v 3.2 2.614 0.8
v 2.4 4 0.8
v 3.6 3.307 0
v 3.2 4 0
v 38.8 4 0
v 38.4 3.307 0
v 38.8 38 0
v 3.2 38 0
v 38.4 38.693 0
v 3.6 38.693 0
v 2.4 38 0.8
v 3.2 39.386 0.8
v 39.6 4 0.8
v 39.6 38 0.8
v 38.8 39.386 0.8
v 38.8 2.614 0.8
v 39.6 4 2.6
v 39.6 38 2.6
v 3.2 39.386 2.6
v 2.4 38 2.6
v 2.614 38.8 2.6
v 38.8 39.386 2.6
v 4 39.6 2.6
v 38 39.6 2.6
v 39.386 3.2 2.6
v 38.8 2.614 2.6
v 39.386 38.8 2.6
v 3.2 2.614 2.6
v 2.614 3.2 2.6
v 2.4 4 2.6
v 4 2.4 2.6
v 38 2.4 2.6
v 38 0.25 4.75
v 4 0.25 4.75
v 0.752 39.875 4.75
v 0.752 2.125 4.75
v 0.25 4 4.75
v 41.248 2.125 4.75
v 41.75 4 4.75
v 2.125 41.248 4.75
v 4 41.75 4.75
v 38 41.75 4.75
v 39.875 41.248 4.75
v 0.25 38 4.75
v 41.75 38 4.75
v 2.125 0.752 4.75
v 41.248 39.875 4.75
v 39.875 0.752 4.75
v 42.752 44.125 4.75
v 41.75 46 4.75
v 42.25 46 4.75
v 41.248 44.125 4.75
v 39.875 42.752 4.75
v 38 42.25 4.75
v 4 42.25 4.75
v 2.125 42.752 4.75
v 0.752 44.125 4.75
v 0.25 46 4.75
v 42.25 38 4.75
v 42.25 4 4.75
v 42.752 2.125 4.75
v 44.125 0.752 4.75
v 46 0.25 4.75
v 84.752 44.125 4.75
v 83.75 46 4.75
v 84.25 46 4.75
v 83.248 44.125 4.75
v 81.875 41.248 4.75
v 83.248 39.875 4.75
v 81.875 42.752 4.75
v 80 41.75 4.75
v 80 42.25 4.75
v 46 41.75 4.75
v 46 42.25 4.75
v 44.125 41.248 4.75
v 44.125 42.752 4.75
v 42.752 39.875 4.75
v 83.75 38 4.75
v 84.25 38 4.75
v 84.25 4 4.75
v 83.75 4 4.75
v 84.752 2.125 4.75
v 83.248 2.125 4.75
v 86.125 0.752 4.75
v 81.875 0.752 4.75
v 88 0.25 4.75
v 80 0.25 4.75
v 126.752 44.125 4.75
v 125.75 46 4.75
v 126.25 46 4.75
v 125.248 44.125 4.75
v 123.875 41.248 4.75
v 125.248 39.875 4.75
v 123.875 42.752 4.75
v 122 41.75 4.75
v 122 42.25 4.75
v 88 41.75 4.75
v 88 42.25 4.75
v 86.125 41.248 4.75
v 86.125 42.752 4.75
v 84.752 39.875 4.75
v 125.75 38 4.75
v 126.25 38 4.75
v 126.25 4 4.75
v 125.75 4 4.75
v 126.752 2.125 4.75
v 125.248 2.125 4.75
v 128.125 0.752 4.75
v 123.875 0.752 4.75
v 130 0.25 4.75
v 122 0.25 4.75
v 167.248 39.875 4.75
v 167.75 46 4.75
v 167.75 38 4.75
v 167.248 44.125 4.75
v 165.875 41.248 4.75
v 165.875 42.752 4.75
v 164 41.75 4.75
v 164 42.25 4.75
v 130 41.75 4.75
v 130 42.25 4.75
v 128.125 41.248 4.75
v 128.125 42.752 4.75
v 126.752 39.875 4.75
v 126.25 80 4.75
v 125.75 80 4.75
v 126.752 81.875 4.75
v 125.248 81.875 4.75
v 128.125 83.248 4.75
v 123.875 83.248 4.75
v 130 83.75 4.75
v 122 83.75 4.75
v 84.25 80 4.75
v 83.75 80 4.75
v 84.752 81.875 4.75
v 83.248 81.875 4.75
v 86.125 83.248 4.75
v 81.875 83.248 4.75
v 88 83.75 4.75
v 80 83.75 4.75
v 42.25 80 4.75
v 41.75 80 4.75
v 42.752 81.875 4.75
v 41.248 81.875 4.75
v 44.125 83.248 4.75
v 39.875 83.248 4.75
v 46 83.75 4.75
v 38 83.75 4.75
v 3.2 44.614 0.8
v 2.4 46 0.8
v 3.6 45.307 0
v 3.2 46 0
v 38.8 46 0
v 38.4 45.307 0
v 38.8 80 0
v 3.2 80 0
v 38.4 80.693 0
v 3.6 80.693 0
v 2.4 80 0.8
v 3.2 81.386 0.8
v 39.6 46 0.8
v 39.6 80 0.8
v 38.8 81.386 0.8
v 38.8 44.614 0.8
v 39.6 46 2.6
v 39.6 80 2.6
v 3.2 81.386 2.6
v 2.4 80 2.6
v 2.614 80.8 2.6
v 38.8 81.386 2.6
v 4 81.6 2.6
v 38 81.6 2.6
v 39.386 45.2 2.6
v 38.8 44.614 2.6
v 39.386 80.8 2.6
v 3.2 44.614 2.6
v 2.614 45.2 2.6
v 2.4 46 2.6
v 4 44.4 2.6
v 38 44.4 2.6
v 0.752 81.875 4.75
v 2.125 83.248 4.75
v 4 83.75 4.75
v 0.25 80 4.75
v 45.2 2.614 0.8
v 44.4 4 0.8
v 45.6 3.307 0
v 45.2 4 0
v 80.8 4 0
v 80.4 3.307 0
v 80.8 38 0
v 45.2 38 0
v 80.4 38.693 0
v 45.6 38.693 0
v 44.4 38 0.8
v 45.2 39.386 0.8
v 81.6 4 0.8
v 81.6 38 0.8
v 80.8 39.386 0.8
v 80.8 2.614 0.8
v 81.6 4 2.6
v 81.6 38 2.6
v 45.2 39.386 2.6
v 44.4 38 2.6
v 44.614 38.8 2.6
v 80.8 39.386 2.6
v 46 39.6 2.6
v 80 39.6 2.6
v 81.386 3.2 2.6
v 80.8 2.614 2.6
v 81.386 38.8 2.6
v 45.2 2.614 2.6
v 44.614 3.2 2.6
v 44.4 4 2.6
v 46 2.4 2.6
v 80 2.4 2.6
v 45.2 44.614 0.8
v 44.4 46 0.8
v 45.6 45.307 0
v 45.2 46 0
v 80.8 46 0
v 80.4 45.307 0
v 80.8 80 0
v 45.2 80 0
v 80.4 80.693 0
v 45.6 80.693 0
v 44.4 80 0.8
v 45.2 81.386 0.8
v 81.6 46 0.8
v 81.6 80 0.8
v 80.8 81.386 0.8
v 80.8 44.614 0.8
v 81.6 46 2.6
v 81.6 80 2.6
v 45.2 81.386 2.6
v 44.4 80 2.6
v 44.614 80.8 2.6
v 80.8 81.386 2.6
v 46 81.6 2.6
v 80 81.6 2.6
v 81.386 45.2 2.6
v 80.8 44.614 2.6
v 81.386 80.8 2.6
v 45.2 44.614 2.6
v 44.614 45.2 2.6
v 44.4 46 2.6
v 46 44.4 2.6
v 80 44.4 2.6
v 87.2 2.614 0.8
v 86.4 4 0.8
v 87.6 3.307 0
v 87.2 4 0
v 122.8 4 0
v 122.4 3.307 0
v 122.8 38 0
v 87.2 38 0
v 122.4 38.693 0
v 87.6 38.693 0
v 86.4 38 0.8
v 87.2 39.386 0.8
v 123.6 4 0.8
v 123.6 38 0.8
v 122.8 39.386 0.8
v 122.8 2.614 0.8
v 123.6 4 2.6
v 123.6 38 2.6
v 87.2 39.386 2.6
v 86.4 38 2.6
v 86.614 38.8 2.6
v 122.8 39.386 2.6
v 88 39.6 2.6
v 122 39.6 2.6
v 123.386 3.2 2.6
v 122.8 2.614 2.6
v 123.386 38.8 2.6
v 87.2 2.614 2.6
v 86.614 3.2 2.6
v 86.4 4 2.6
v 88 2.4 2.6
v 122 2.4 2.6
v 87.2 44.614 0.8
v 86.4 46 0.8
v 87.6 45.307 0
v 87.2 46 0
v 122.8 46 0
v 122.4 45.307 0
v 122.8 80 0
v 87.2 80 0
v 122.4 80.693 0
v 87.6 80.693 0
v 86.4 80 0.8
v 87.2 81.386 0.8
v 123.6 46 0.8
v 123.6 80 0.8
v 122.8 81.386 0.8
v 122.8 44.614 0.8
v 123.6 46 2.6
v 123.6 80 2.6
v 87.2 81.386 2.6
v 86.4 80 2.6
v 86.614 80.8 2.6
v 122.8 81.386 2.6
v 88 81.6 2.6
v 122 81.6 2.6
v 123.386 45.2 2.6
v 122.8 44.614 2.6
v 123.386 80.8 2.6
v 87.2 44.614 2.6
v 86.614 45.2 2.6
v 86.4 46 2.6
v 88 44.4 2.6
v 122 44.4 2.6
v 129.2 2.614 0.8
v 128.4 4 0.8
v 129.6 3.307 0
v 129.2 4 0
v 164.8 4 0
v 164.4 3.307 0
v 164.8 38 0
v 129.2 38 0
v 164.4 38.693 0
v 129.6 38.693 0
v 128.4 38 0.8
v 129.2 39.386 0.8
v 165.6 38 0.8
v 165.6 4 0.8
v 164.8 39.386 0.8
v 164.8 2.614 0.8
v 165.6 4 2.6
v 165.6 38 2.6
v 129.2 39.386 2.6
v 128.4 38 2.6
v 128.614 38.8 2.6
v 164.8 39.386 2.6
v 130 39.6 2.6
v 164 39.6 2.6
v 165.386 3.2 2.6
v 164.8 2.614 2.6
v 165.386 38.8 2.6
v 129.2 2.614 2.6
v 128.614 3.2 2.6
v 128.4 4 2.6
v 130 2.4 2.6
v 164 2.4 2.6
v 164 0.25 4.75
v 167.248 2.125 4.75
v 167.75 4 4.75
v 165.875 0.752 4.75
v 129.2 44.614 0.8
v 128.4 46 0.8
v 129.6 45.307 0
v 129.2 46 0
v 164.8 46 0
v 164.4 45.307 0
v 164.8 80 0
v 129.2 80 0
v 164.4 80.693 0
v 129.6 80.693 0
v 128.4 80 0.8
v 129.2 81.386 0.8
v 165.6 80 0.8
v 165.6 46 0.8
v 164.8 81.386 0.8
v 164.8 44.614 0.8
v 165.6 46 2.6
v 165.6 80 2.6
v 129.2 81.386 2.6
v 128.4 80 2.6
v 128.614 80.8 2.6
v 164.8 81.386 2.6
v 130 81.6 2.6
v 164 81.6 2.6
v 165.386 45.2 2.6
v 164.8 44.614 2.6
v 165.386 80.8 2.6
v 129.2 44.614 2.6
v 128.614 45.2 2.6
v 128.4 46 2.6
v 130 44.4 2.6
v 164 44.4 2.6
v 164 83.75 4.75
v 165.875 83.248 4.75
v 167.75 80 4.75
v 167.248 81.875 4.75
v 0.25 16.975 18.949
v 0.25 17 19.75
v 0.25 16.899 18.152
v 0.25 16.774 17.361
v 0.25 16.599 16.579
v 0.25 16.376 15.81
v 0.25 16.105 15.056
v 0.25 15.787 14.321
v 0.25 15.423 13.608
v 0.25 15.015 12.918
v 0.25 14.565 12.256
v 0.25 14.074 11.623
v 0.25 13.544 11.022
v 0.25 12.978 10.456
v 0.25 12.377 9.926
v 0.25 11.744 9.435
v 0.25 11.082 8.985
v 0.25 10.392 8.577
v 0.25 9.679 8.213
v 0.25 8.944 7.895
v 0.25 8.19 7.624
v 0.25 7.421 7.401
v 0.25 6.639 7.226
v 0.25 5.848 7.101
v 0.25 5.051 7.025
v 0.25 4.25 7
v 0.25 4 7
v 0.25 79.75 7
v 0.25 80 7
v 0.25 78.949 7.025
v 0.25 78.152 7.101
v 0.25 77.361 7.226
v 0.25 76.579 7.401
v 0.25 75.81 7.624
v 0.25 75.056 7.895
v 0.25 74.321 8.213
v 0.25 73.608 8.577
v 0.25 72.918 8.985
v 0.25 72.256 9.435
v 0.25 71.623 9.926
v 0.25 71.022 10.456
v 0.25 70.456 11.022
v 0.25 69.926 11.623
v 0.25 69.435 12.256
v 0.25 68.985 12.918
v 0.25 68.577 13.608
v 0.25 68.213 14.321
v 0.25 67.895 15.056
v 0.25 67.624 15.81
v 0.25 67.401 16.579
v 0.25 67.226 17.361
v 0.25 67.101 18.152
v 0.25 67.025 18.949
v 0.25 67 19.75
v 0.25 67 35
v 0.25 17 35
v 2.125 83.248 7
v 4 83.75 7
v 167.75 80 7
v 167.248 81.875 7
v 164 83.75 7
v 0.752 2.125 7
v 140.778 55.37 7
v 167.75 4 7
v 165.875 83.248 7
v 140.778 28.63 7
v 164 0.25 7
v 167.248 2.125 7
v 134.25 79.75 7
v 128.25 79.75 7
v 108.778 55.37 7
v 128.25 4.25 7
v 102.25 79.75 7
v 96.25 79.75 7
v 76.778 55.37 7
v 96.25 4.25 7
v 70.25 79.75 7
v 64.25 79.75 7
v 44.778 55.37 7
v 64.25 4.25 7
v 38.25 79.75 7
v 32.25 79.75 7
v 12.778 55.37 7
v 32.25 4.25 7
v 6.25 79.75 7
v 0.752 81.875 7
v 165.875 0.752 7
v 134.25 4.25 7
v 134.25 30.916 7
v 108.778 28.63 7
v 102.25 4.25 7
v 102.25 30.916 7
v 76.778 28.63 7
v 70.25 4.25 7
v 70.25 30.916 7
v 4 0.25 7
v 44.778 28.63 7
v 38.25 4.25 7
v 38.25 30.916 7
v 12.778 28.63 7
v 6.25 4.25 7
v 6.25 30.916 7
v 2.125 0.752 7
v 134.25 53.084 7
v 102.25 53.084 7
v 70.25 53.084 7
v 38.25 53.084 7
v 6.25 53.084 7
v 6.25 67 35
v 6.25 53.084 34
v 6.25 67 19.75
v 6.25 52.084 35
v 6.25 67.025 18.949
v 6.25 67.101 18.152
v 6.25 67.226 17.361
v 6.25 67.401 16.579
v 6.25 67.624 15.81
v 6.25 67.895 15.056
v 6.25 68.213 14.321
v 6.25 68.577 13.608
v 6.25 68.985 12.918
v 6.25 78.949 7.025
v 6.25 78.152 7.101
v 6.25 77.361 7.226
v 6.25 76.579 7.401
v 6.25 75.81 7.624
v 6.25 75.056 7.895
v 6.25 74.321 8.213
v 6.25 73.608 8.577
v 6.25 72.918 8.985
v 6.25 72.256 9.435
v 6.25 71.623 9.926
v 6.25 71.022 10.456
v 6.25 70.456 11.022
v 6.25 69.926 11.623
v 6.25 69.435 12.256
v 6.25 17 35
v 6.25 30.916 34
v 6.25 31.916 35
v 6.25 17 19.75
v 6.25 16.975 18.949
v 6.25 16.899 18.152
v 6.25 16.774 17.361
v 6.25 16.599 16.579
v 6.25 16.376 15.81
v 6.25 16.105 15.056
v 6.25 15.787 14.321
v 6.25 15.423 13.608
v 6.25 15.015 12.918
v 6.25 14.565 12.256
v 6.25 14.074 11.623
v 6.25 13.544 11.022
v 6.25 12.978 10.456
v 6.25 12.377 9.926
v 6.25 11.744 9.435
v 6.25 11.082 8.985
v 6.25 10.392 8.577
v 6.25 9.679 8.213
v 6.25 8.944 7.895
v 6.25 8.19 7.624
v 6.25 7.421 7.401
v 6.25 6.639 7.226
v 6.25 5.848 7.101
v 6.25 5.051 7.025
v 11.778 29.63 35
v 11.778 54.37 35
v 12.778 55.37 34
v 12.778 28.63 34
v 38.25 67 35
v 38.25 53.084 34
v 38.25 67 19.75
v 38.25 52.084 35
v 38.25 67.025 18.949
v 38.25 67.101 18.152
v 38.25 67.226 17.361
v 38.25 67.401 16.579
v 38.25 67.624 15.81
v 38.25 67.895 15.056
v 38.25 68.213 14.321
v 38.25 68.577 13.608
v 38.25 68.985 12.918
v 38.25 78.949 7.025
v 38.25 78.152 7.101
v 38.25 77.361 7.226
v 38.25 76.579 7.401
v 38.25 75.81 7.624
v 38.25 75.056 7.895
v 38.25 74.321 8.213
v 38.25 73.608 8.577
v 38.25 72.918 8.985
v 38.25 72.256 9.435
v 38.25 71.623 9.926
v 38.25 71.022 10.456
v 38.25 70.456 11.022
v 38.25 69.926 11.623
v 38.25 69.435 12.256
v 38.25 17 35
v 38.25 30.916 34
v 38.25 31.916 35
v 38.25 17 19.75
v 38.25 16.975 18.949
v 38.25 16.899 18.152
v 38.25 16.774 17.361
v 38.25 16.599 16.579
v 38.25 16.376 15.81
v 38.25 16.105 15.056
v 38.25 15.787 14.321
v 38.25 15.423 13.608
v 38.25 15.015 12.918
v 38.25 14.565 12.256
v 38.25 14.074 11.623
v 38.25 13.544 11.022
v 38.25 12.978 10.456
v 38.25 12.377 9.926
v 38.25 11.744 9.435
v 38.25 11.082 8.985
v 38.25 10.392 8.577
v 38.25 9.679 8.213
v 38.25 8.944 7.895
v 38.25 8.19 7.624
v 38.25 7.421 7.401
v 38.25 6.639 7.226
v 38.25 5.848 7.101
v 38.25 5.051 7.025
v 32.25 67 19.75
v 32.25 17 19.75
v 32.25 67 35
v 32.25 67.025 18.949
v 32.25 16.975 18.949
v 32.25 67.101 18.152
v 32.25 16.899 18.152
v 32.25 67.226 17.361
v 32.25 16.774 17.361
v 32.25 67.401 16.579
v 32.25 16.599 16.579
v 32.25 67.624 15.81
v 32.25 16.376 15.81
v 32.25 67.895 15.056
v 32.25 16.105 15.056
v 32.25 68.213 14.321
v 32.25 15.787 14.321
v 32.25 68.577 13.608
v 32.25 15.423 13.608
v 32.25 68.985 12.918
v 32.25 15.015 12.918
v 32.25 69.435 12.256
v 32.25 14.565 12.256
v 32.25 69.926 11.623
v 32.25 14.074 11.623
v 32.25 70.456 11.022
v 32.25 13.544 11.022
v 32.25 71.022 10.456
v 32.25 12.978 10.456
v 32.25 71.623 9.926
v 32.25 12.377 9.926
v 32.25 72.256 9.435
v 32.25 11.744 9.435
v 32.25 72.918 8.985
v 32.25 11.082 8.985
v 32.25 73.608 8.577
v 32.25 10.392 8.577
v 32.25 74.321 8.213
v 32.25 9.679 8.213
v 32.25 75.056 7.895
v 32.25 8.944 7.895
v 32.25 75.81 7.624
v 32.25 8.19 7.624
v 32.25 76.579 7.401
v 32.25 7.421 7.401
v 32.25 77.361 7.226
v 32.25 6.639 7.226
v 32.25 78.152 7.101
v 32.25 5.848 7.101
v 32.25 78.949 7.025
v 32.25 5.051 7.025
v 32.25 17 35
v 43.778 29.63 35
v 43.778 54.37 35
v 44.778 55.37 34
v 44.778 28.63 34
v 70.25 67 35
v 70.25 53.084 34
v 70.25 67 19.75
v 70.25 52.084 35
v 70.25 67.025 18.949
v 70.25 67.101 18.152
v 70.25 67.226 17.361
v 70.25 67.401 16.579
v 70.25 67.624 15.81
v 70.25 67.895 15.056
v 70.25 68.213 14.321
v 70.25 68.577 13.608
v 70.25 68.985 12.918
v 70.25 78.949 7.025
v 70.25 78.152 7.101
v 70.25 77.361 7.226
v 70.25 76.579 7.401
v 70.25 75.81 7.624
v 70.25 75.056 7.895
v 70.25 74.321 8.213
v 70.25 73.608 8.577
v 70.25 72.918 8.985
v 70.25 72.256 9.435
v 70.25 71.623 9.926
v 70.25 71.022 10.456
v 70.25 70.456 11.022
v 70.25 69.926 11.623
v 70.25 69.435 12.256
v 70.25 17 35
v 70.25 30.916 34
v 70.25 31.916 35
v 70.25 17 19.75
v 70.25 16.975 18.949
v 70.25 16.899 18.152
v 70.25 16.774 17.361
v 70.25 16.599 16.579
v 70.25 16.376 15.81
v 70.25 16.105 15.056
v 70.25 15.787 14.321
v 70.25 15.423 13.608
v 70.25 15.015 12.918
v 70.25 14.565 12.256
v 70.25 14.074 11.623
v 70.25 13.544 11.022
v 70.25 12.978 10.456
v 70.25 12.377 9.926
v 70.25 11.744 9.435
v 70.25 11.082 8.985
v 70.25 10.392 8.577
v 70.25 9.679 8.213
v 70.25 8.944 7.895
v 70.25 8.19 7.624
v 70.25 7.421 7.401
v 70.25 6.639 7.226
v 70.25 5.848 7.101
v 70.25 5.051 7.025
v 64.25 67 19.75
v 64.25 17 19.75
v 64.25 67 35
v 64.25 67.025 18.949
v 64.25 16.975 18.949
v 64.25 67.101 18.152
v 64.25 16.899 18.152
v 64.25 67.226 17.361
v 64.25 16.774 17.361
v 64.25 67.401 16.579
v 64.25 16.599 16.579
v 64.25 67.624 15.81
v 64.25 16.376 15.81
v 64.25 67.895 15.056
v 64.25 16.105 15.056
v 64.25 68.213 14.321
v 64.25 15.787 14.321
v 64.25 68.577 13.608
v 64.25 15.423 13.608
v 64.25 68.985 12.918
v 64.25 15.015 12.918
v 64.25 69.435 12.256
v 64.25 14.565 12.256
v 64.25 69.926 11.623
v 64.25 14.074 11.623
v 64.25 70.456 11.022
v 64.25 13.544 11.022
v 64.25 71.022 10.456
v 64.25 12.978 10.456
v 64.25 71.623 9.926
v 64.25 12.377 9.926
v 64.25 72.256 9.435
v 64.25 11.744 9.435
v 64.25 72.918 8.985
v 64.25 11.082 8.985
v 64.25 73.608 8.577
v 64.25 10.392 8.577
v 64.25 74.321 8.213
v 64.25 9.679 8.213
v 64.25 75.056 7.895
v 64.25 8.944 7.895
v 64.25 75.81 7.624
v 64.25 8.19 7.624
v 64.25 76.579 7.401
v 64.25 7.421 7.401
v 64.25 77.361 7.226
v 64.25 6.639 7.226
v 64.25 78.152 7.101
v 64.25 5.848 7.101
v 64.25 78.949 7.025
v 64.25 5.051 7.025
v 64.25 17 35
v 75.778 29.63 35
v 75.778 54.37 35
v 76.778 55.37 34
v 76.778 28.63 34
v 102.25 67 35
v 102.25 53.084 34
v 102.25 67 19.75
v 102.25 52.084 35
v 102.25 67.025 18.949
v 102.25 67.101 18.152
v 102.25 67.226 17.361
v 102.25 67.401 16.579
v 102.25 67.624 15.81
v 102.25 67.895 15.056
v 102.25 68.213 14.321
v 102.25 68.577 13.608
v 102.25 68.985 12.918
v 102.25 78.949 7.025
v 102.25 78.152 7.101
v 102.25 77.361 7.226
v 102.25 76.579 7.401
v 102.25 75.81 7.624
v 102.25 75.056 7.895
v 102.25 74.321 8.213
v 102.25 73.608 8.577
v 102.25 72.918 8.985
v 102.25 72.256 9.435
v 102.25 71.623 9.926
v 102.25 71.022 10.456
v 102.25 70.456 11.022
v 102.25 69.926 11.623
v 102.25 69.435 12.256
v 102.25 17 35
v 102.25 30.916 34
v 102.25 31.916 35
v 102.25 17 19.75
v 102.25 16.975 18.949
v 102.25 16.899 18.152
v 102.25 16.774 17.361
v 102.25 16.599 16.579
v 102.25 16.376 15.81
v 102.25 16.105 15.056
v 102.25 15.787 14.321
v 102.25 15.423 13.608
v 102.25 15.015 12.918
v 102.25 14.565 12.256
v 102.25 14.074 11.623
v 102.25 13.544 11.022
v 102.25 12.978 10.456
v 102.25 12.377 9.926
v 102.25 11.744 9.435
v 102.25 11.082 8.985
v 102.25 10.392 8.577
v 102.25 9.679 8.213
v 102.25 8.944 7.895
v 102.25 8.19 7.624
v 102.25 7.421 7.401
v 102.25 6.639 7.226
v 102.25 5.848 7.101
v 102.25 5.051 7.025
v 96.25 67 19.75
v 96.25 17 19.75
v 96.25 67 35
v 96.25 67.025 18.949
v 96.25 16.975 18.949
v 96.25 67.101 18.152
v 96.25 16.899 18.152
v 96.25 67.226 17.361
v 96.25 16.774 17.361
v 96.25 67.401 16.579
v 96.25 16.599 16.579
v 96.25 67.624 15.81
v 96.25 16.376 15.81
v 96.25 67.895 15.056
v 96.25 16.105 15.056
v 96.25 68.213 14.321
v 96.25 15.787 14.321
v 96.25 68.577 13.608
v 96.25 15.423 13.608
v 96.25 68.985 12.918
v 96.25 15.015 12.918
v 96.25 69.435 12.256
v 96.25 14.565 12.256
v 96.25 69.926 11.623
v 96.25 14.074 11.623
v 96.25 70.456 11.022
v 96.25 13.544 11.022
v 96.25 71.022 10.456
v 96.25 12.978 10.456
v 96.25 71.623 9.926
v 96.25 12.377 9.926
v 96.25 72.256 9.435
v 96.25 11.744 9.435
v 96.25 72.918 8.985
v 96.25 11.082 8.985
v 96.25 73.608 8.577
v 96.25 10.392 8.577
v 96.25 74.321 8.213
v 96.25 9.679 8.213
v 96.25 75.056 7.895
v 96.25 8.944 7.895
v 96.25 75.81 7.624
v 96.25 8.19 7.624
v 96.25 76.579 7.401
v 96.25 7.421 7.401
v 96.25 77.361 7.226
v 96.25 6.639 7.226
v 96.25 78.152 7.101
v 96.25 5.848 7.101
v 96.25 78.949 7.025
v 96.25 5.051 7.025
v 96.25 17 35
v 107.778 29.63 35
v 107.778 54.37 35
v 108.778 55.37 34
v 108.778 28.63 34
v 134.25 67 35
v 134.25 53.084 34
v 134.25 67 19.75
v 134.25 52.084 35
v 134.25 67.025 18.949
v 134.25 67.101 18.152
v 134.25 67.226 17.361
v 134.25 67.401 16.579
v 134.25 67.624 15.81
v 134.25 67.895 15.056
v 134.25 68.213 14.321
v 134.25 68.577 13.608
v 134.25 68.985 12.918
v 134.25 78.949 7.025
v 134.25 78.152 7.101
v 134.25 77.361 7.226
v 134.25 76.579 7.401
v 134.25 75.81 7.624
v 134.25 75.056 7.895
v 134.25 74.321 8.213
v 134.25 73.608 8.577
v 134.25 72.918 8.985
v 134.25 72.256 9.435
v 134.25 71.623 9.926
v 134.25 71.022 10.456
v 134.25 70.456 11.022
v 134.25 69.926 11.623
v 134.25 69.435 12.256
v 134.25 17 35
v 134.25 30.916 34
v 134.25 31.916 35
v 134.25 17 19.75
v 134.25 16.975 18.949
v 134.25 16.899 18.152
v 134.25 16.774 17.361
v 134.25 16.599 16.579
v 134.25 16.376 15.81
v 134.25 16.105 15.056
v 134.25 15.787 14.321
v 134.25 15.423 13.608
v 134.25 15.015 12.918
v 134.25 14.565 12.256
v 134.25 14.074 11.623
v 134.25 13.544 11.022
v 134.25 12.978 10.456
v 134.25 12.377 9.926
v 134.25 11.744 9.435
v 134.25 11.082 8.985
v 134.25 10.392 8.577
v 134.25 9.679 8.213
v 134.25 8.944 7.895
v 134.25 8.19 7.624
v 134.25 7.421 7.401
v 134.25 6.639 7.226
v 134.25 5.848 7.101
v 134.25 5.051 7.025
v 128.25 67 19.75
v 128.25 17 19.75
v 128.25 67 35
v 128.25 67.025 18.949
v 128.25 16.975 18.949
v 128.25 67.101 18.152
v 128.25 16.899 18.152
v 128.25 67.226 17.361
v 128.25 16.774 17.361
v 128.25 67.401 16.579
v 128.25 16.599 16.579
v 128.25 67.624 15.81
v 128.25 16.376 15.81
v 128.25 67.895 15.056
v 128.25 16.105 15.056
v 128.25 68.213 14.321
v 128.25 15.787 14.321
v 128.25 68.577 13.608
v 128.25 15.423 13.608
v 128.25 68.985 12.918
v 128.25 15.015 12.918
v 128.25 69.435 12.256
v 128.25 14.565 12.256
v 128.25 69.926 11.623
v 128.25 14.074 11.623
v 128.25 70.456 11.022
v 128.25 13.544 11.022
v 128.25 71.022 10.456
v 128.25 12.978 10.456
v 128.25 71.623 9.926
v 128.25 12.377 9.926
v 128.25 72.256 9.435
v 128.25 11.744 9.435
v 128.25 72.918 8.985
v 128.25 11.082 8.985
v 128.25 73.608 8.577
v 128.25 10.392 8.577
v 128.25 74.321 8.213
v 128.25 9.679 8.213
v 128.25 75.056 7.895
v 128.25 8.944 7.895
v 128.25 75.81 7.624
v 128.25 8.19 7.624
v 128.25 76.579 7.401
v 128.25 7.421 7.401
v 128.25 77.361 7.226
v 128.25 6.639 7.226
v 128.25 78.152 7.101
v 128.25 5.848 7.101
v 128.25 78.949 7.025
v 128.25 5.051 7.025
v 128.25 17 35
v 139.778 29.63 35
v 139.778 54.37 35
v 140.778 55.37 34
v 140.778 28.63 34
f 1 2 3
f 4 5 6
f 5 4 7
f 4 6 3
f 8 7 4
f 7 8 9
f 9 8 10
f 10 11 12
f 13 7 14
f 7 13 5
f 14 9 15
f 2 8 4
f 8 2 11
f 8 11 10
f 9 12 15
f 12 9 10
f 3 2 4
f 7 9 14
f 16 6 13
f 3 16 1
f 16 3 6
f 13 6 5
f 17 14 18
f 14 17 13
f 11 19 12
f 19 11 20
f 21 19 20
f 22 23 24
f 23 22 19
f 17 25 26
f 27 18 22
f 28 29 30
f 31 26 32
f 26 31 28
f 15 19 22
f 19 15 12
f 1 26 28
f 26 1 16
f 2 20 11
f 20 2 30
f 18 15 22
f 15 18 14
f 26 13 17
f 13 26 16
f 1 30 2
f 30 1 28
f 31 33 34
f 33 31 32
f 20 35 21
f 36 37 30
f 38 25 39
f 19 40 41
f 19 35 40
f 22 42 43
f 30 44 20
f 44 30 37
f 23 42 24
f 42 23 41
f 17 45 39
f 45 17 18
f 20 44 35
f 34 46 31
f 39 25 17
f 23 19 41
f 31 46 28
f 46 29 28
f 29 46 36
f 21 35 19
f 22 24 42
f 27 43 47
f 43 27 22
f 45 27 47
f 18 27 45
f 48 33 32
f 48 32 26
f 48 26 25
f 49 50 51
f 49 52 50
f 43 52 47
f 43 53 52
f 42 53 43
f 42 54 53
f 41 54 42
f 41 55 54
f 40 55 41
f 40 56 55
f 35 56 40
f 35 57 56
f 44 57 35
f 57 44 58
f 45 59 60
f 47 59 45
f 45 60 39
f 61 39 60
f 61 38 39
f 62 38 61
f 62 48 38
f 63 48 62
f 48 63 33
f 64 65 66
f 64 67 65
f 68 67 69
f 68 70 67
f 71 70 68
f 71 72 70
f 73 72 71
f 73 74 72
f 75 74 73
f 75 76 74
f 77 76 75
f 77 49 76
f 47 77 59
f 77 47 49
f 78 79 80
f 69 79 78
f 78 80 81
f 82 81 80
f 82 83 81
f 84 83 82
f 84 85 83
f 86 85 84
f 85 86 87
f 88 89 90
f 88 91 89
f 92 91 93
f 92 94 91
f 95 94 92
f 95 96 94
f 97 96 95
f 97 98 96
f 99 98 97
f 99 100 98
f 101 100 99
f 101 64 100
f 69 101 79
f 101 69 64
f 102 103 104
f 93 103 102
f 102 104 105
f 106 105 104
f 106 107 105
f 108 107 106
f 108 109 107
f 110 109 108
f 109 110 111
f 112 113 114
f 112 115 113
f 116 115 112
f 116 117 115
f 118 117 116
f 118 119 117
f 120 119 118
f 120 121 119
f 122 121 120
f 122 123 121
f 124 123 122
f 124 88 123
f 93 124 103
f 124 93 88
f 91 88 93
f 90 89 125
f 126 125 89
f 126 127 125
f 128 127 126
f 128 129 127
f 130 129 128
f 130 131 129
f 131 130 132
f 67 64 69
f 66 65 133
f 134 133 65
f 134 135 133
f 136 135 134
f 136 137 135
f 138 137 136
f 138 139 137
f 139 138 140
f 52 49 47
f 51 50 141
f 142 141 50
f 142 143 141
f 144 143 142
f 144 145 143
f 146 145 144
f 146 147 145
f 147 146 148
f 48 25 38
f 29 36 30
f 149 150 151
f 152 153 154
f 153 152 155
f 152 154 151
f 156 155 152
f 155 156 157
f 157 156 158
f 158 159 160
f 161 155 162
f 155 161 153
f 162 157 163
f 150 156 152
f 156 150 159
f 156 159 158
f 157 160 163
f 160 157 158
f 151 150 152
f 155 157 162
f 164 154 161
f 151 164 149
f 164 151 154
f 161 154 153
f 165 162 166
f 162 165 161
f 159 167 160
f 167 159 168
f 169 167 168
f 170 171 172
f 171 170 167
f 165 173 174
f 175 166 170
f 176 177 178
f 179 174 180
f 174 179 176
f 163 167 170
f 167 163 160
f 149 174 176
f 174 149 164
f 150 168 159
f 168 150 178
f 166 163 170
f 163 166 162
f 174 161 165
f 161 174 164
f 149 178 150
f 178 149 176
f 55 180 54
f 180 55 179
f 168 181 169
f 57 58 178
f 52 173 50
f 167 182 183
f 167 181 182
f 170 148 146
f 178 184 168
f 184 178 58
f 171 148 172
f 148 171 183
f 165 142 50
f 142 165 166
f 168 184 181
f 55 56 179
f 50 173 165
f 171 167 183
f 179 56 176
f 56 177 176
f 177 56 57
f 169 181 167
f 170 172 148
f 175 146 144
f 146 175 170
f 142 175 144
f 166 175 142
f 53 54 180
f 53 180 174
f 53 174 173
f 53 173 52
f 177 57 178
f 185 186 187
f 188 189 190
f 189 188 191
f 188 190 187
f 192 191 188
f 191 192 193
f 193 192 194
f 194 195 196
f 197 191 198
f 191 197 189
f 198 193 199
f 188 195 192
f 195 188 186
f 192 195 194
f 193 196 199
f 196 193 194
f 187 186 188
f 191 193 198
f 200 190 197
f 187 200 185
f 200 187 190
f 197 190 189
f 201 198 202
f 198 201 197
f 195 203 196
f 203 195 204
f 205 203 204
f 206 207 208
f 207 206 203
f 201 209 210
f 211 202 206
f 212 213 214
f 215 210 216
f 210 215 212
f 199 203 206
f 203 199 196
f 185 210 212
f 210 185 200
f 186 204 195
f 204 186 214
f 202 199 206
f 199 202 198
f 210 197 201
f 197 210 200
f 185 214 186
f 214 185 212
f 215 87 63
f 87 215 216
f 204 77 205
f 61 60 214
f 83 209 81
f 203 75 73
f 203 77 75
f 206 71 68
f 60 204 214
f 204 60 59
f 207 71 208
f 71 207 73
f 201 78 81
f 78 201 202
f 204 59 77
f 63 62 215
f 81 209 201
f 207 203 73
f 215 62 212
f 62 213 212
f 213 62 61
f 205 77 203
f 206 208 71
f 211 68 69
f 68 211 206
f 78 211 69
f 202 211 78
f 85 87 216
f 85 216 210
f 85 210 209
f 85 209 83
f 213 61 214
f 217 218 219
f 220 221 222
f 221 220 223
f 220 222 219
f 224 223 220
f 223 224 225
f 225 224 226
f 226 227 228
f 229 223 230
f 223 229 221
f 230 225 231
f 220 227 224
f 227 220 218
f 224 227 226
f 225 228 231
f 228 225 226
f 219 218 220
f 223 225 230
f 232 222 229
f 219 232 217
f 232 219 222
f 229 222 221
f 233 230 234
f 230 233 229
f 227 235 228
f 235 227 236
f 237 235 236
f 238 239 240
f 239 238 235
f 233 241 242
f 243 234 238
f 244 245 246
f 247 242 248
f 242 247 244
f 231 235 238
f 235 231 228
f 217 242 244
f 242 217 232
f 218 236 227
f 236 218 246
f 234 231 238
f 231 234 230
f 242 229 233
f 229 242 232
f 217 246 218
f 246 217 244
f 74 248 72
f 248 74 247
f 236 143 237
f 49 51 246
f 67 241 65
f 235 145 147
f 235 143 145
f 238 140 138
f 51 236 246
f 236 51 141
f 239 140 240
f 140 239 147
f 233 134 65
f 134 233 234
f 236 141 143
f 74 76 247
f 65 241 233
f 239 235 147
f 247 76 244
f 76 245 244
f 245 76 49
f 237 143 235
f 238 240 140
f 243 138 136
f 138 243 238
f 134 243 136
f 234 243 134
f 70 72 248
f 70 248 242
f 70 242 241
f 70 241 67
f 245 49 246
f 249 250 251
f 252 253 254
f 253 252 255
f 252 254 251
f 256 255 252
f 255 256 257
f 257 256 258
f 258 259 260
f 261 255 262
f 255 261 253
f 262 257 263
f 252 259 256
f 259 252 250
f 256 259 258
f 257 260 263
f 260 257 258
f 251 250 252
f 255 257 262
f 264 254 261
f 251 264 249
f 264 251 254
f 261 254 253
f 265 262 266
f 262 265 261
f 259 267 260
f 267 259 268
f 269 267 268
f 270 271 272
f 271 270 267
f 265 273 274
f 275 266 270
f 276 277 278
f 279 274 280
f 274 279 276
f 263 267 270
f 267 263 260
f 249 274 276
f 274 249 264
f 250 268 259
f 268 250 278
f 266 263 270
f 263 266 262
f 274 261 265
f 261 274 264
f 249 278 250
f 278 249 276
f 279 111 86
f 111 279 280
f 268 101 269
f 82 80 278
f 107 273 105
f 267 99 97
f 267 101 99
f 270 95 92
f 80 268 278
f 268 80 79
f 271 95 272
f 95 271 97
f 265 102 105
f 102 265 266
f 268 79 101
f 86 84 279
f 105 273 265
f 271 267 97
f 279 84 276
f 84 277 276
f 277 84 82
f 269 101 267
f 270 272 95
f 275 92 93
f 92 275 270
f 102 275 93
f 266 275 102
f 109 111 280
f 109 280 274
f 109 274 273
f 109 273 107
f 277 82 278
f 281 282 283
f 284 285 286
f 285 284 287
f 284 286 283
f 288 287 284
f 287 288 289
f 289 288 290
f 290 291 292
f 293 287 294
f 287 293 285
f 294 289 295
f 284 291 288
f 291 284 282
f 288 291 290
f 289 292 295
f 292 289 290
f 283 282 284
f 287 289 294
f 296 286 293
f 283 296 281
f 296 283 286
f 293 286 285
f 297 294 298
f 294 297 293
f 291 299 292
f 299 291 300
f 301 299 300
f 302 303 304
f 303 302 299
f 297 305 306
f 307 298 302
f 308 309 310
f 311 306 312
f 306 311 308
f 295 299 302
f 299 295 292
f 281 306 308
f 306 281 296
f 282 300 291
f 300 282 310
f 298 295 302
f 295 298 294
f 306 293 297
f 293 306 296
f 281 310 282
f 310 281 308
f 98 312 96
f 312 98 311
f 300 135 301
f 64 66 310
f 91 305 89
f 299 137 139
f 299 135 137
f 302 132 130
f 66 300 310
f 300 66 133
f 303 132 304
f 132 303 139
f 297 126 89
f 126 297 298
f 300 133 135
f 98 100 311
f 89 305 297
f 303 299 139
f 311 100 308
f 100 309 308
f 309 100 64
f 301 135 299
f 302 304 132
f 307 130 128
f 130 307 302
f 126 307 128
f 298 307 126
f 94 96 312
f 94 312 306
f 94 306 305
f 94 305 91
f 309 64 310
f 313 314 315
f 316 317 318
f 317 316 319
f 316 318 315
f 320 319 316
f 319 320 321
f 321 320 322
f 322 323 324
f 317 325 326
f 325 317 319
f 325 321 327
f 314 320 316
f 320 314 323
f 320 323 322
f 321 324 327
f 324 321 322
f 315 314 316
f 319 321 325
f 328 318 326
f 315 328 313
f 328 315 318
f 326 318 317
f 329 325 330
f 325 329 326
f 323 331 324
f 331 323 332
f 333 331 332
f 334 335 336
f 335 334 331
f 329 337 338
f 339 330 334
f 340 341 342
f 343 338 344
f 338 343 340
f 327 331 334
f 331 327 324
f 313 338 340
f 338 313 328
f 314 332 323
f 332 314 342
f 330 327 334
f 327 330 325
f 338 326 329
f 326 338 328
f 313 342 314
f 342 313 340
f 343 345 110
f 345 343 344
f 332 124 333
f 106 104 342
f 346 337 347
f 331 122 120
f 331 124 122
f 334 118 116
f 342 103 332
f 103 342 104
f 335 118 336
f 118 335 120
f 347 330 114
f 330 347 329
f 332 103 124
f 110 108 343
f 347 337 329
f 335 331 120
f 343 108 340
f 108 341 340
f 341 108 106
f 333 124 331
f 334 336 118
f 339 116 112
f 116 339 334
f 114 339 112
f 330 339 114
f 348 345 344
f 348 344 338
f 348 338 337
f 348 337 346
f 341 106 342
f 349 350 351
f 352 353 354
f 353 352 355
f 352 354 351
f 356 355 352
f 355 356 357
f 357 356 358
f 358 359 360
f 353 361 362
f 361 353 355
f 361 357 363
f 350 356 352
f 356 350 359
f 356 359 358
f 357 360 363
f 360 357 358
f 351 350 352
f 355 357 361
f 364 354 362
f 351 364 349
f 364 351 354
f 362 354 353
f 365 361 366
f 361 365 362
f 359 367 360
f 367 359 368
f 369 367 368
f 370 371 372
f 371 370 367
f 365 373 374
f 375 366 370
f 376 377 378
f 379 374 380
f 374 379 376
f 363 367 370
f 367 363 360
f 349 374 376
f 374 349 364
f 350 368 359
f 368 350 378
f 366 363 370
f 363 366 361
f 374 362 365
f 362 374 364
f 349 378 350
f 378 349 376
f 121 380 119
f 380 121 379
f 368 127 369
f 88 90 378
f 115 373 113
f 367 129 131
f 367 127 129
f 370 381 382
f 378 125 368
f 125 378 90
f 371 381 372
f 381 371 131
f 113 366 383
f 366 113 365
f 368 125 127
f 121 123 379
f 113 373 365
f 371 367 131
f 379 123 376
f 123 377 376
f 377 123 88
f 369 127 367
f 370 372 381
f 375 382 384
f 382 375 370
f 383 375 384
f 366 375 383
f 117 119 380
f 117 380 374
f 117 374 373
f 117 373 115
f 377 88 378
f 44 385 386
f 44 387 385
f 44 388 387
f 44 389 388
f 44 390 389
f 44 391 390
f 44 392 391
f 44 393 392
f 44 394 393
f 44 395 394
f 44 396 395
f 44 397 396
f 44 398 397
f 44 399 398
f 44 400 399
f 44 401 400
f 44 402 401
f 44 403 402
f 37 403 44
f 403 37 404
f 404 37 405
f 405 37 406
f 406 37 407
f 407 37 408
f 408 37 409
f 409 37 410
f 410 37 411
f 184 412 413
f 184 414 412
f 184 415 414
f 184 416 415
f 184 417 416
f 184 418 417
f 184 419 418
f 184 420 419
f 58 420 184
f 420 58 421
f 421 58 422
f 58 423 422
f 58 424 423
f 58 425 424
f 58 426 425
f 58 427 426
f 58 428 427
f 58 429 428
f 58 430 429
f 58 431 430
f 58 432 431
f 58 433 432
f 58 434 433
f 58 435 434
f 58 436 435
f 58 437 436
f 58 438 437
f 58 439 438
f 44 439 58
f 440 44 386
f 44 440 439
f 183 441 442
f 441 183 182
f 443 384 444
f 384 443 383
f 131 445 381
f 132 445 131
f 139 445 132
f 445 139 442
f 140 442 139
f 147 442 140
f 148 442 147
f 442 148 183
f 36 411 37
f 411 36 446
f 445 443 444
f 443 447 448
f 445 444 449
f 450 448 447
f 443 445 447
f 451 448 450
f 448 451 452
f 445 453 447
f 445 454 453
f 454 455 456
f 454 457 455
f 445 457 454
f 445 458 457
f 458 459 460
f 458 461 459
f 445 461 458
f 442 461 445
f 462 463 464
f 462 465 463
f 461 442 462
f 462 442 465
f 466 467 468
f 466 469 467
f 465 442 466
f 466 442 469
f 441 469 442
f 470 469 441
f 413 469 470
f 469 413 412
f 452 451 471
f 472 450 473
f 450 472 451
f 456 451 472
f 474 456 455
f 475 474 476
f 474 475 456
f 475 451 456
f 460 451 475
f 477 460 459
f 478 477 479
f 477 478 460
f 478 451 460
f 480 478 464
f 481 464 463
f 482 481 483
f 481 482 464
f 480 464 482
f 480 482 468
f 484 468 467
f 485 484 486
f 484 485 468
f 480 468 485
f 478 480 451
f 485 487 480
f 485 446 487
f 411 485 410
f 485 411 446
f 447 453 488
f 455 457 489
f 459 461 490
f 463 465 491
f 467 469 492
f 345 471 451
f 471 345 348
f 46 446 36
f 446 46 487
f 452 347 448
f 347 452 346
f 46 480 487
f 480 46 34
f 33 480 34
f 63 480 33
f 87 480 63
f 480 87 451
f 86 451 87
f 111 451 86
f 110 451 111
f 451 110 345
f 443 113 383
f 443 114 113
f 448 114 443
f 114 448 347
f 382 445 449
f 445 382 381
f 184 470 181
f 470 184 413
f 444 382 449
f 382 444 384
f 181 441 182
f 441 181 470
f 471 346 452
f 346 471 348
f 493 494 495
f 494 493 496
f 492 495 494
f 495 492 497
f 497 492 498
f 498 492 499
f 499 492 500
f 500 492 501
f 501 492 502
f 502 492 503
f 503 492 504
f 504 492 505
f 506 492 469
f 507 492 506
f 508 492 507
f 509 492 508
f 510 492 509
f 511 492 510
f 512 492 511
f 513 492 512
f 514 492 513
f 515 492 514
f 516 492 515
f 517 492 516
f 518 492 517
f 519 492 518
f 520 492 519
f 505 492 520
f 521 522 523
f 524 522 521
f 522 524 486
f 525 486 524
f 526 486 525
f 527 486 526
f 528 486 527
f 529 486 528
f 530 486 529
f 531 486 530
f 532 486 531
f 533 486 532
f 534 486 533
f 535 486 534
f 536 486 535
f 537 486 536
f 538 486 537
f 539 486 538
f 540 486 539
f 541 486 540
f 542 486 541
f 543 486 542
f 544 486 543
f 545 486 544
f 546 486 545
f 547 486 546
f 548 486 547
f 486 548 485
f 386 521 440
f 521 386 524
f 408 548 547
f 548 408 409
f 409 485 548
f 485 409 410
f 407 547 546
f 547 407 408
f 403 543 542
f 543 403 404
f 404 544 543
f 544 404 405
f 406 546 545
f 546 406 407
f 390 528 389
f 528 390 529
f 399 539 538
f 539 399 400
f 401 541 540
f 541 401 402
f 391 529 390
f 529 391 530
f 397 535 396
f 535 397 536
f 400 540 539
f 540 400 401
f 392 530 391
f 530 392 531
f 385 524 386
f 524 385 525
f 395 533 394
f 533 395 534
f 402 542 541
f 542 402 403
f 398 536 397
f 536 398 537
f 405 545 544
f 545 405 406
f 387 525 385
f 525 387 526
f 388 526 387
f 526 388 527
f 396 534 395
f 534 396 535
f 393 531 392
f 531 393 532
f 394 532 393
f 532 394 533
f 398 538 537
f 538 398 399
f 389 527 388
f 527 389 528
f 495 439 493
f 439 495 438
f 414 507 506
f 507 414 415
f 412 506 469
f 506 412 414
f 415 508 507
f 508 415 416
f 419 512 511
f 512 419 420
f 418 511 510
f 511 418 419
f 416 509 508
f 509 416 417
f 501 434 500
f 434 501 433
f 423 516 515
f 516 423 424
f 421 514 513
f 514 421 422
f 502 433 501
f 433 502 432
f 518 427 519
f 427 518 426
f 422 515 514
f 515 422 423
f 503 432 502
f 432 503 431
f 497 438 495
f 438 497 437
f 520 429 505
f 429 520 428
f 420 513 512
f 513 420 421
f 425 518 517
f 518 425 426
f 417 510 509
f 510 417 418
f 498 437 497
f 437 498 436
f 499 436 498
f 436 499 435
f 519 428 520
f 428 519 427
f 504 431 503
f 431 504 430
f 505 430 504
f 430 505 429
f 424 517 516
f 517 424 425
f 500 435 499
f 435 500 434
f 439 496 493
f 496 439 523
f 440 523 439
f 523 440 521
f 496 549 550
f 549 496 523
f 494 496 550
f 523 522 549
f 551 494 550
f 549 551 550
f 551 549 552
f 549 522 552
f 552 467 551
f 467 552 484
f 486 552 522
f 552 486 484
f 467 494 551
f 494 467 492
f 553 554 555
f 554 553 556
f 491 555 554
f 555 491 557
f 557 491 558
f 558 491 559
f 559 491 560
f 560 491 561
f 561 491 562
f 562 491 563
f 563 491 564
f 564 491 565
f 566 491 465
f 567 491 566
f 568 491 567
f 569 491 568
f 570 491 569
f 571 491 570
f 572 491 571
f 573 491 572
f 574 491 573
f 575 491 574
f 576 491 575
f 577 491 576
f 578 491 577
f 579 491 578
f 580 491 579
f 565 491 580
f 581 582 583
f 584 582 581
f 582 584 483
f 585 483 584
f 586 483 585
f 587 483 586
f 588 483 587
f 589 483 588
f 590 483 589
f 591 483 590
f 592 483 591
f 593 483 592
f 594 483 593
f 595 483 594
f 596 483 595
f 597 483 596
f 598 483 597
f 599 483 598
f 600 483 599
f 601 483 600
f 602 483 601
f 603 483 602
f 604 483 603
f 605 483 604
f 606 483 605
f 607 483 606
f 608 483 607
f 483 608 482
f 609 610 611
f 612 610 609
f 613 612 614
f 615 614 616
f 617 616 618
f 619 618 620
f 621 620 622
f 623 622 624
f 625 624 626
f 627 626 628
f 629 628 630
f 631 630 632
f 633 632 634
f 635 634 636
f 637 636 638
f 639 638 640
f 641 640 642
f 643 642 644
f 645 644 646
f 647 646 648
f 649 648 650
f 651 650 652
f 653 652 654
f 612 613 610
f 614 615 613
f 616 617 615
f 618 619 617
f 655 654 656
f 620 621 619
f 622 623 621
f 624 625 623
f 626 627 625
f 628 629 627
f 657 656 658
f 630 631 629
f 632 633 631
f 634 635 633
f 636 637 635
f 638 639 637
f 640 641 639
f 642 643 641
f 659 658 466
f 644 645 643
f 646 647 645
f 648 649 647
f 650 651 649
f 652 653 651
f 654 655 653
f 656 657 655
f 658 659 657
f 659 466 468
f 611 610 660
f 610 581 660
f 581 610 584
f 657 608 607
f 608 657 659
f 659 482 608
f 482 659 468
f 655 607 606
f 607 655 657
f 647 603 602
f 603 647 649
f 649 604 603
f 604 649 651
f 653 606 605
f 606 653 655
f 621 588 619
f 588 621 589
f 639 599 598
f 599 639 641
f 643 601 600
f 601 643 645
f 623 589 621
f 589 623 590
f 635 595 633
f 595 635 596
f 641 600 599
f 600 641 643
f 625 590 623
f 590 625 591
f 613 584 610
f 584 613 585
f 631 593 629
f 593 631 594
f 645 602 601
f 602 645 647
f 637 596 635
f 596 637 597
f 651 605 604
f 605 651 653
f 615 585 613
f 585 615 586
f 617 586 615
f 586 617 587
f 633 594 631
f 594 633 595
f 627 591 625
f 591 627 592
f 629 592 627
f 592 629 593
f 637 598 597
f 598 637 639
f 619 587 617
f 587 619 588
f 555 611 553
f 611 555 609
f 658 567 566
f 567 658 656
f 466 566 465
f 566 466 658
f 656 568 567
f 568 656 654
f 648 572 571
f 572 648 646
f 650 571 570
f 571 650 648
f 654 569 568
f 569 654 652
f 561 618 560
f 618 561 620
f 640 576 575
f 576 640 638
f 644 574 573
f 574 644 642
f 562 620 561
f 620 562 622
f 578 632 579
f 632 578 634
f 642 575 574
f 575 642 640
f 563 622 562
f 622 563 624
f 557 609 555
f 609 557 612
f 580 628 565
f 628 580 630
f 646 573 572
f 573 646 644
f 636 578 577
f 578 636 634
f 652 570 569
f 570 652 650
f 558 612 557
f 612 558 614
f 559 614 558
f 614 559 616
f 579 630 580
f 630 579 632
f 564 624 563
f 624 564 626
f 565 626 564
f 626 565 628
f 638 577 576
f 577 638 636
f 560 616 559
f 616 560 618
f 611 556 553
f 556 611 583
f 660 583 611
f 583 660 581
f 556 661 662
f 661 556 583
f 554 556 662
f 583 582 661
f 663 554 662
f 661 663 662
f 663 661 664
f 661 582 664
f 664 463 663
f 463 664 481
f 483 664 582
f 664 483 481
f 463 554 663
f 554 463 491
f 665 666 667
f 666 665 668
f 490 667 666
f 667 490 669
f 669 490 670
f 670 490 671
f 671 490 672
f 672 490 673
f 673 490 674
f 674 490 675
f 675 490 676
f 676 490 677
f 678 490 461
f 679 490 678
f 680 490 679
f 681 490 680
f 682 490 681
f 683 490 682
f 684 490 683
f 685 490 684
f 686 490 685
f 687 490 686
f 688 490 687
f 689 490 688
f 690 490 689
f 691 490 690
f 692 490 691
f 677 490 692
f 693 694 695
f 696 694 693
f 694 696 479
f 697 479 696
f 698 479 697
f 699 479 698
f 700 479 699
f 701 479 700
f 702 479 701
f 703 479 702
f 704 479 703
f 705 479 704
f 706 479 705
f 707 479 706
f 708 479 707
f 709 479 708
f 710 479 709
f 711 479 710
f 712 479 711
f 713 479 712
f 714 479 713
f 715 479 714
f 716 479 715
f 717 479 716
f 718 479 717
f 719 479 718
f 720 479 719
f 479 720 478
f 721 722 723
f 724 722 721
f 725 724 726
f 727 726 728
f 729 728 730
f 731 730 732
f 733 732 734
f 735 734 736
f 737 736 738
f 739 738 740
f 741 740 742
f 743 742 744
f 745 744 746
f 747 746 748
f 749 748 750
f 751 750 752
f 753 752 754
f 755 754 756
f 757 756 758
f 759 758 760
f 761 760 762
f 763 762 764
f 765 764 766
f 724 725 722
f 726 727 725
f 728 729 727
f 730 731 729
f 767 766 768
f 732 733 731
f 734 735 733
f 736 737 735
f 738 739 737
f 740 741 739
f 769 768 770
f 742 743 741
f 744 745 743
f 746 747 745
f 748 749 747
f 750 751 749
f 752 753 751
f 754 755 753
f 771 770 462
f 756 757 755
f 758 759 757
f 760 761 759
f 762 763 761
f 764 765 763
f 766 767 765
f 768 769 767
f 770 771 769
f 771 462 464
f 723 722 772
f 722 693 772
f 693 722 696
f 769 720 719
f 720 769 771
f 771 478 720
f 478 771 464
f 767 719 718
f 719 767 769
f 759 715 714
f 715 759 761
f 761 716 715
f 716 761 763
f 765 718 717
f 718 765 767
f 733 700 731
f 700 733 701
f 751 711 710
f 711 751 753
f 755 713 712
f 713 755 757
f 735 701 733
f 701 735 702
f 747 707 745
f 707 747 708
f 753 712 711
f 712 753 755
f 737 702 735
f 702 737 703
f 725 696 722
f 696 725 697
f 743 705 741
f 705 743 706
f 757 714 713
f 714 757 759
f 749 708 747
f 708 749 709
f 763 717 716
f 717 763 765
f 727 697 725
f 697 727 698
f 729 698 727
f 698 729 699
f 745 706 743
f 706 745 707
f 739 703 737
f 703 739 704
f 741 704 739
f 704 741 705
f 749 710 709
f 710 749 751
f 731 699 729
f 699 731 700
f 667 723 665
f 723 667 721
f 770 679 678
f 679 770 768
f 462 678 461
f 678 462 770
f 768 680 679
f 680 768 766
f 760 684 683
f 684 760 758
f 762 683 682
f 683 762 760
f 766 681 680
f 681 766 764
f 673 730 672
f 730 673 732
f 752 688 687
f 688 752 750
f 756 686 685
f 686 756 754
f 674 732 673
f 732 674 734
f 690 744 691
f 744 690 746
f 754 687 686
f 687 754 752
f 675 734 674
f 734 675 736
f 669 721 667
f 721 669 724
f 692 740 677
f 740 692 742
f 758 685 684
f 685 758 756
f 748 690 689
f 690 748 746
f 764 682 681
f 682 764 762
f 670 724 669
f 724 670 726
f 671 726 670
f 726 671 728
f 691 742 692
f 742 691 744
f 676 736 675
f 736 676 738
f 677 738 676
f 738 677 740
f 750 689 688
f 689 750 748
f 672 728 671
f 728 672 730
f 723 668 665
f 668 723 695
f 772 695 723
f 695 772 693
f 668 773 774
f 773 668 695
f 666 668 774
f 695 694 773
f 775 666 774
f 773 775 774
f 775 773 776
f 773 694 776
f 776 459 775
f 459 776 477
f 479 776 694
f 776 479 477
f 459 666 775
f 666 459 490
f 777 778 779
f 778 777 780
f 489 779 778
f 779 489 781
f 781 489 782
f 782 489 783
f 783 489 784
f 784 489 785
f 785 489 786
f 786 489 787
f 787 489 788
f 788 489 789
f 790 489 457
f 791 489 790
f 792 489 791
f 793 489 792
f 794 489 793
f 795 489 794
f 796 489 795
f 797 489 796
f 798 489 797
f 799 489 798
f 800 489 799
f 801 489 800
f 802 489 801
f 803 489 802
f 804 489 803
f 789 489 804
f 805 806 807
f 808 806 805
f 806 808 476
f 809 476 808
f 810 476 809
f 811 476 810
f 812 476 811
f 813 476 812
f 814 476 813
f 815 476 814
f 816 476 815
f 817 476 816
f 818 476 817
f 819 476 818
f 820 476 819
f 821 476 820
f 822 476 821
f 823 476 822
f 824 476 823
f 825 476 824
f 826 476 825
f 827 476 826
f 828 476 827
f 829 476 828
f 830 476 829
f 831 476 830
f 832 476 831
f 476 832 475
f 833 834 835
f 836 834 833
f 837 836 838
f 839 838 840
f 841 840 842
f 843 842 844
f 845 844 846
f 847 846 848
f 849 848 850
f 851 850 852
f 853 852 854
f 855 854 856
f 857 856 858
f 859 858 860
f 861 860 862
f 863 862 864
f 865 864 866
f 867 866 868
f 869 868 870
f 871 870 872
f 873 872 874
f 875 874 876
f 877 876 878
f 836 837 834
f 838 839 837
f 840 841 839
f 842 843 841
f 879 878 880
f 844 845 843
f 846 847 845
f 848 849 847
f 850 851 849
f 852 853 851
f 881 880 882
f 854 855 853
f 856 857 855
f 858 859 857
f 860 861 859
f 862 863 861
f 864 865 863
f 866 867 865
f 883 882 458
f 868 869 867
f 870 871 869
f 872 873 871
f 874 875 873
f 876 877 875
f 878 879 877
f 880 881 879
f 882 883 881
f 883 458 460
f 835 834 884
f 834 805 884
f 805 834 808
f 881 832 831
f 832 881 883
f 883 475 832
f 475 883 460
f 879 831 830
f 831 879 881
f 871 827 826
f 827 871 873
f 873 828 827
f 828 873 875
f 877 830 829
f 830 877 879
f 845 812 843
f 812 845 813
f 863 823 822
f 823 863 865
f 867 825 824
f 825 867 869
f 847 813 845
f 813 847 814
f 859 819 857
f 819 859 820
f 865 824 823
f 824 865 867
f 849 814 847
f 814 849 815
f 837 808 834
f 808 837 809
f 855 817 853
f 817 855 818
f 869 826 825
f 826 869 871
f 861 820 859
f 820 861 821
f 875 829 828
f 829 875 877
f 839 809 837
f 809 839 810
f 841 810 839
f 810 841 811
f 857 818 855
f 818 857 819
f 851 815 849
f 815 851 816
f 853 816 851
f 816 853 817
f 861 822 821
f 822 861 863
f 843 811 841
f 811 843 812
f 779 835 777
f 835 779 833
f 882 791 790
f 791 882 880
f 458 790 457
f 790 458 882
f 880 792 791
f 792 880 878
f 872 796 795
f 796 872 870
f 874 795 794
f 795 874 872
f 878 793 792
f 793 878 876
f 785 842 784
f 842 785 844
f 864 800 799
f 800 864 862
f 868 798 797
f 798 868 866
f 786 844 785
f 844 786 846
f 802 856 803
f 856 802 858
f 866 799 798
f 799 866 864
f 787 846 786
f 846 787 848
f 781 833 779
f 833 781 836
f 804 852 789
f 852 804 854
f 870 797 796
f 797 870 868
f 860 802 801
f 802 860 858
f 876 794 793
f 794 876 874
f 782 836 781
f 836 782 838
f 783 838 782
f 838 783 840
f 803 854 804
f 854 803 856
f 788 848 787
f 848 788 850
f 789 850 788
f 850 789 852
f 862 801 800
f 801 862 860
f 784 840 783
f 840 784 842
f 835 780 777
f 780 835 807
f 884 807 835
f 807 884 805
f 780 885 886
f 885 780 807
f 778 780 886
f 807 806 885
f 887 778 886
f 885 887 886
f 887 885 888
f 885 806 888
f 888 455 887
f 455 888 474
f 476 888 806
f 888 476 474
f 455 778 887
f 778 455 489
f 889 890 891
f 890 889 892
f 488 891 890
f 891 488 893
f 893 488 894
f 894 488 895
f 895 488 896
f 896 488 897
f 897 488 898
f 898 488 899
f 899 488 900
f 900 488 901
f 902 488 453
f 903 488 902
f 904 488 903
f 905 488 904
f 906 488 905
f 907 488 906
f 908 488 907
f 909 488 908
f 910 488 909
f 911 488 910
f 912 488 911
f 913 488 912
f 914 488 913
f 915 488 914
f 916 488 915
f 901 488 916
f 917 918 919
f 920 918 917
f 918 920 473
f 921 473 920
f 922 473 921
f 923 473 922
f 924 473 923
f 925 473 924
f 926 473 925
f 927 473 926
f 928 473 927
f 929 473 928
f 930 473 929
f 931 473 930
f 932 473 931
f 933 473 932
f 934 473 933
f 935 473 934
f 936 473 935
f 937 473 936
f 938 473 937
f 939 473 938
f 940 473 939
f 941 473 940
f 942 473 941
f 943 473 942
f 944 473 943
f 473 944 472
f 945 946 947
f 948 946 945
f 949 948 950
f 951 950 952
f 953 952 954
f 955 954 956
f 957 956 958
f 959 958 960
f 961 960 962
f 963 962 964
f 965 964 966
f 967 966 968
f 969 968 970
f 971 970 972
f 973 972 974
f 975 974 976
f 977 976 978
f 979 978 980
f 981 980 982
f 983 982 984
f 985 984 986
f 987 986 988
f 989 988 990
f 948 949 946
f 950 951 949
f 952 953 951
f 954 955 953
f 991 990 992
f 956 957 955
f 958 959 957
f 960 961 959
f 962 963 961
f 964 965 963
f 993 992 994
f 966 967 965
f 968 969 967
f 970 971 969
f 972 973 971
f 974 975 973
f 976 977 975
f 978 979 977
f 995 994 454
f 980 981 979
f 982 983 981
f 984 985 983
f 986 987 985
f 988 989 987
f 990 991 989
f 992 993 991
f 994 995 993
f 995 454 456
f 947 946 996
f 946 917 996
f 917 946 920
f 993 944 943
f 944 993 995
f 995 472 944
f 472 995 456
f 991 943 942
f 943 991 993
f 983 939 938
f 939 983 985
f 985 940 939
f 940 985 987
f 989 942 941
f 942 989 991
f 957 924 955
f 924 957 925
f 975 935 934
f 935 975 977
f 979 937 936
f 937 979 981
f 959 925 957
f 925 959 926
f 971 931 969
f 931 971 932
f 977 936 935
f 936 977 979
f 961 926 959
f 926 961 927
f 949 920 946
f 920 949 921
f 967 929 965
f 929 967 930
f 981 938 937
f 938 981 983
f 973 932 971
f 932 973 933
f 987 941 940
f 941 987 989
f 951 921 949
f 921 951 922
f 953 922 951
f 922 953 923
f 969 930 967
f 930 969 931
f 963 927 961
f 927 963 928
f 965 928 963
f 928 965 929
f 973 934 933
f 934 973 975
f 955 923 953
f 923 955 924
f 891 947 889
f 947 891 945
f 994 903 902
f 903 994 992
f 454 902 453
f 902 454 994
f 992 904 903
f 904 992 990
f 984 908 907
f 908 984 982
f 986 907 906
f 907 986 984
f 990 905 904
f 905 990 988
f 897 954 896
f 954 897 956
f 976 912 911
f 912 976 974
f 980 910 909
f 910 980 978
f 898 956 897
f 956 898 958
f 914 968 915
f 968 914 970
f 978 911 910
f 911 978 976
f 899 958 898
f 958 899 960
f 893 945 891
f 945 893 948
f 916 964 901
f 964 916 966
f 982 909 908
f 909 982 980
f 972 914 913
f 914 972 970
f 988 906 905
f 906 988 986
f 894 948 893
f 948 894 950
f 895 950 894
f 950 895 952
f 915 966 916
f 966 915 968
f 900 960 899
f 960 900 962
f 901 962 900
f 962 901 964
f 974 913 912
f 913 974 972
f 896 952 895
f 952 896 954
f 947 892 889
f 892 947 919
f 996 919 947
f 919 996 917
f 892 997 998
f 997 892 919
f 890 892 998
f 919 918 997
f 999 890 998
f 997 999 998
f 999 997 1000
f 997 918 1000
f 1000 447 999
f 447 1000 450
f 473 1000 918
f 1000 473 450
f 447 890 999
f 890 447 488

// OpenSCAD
bracket_wall_thickness = 6;
bracket_height = 28;
bracket_length = 50;
dovetail_thickness = 0.257 * 25.4;
dovetail_major_length = 1.1 * 25.4;
dovetail_minor_length = 0.92 * 25.4;
tool_clearance_gap = 0.6;
tool_count = 5;
tool_spacing = 32;

// https://files.printables.com/media/prints/417152/pdfs/417152-gridfinity-specification-b1e2cca5-0872-4816-b0ca-5339e5473e13.pdf

module gridfinity_base(gridx, gridy, height, stacking_lip = true) {
    x_center_offset = (gridx * 42 - 0.5)/2.0 - 3.75;
    y_center_offset = (gridy * 42 - 0.5)/2.0 - 3.75;
    full_width_height = height * 7 - 2.15 - 1.8 - 0.8;
    lip_width = 2.6;
    outside_radius = 3.75;

    module cell_base() {
        module layer(z, height, bottom_radius, top_radius) {
            hull()
            for (x = [4.0, 42.0-4.0])
                for (y = [4.0, 42.0-4.0])
                    translate([x,y,z]) cylinder(h=height, r1=bottom_radius, r2=top_radius);
        }
        layer(z=0.0, height=0.8, bottom_radius=0.8, top_radius=1.6);
        layer(z=0.8, height=1.8, bottom_radius=1.6, top_radius=1.6);
        layer(z=2.6, height=2.15, bottom_radius=1.6, top_radius=3.75);
    }

    for (x = [0:gridx-1])
        for (y = [0:gridy-1])
            translate([x*42.0, y*42.0, 0])
                cell_base();

    hull()
    for (x = [4.0, gridx * 42.0 - 4.0])
        for (y = [4.0, gridy * 42.0 - 4.0])
            translate([x,y, 4.75]) cylinder(h=full_width_height, r=outside_radius);

    module lip_profile() {
        function roundover_at(angle) = let (
            radius = 0.5,
            x = outside_radius - radius,
            y = 3.69 - radius
        ) [ x + radius * sin(angle), y + radius * cos(angle) ];
        polygon(points=[
            [ outside_radius - lip_width  ,   0 ],
            [ outside_radius - 1.9        , 0.7 ],
            [ outside_radius - 1.9        , 0.7 + 1.8 ],
            for (angle = [-45, -30, 0, 30, 45, 60, 90]) roundover_at(angle),
            [ outside_radius              ,   0 ],
            [ outside_radius - lip_width  ,   0 ]
        ]);
    }

    lip_inset = outside_radius + 0.25;

    module lip_side(grids) {
        rotate([90,0,0]) linear_extrude(grids*42.0 - 2 * lip_inset) lip_profile();
        rotate_extrude(angle=90) lip_profile();
    }

    if (stacking_lip) {
        translate([gridx*42.0 - lip_inset, gridy*42.0 - lip_inset, height*7]) lip_side(gridy);
        translate([lip_inset, lip_inset, height*7]) rotate([0,0,180]) lip_side(gridy);
        translate([gridx*42.0 - lip_inset, lip_inset, height*7]) rotate([0,0,-90]) lip_side(gridx);
        translate([lip_inset, gridy*42 - lip_inset, height*7]) rotate([0,0,90]) lip_side(gridx);
    }
}

module tool_holder_post() {
    module fillet() {
        radius = (42*2 - bracket_length) / 2 * 3/4;
        translate([0, -radius, radius])
        rotate([0, 90, 0])
        difference() {
            translate([radius/2, radius/2, bracket_wall_thickness/2])
            cube([radius, radius, bracket_wall_thickness], center=true);
            translate([0, 0, -0.05])
            cylinder(r=radius, h=bracket_wall_thickness+0.1, $fn=100);
        }
    }
    
    module dovetail() {
        top_chamfer = 1.0;
        hull() {
        linear_extrude(bracket_height - top_chamfer)
        polygon(points=[
            [0, dovetail_minor_length/2 - tool_clearance_gap],
            [dovetail_thickness, dovetail_major_length/2 - tool_clearance_gap],
            [dovetail_thickness, -dovetail_major_length/2 + tool_clearance_gap],
            [0, -dovetail_minor_length/2 + tool_clearance_gap],
        ]);
	translate([0, 0, bracket_height - 0.1])
	linear_extrude(0.1)
        polygon(points=[
            [0, dovetail_minor_length/2 - tool_clearance_gap - top_chamfer],
            [dovetail_thickness - top_chamfer, dovetail_major_length/2 - tool_clearance_gap - top_chamfer],
            [dovetail_thickness - top_chamfer, -dovetail_major_length/2 + tool_clearance_gap + top_chamfer],
            [0, -dovetail_minor_length/2 + tool_clearance_gap + top_chamfer],
        ]);
        }
    }
    
    module post() {
        translate([bracket_wall_thickness, 0, 0])
        linear_extrude(bracket_height)
        polygon(points=[
            [-bracket_wall_thickness, bracket_length/2],
            [0, bracket_length/2],
            [0, -bracket_length/2],
            [-bracket_wall_thickness, -bracket_length/2],
        ]);

        translate([0, -bracket_length/2, 0]) fillet();
        translate([+bracket_wall_thickness, bracket_length/2, 0]) rotate([0, 0, 180]) fillet();
    }

    post();
    translate([bracket_wall_thickness, 0, 0]) dovetail();
}

module lathe_tool_holder_bin() {
   gridfinity_base(4, 2, 1, stacking_lip=false);

   for (i = [0:tool_count-1])
   translate([0.25 + i*tool_spacing, 2*42/2, 7])
   tool_holder_post();
}

lathe_tool_holder_bin();
